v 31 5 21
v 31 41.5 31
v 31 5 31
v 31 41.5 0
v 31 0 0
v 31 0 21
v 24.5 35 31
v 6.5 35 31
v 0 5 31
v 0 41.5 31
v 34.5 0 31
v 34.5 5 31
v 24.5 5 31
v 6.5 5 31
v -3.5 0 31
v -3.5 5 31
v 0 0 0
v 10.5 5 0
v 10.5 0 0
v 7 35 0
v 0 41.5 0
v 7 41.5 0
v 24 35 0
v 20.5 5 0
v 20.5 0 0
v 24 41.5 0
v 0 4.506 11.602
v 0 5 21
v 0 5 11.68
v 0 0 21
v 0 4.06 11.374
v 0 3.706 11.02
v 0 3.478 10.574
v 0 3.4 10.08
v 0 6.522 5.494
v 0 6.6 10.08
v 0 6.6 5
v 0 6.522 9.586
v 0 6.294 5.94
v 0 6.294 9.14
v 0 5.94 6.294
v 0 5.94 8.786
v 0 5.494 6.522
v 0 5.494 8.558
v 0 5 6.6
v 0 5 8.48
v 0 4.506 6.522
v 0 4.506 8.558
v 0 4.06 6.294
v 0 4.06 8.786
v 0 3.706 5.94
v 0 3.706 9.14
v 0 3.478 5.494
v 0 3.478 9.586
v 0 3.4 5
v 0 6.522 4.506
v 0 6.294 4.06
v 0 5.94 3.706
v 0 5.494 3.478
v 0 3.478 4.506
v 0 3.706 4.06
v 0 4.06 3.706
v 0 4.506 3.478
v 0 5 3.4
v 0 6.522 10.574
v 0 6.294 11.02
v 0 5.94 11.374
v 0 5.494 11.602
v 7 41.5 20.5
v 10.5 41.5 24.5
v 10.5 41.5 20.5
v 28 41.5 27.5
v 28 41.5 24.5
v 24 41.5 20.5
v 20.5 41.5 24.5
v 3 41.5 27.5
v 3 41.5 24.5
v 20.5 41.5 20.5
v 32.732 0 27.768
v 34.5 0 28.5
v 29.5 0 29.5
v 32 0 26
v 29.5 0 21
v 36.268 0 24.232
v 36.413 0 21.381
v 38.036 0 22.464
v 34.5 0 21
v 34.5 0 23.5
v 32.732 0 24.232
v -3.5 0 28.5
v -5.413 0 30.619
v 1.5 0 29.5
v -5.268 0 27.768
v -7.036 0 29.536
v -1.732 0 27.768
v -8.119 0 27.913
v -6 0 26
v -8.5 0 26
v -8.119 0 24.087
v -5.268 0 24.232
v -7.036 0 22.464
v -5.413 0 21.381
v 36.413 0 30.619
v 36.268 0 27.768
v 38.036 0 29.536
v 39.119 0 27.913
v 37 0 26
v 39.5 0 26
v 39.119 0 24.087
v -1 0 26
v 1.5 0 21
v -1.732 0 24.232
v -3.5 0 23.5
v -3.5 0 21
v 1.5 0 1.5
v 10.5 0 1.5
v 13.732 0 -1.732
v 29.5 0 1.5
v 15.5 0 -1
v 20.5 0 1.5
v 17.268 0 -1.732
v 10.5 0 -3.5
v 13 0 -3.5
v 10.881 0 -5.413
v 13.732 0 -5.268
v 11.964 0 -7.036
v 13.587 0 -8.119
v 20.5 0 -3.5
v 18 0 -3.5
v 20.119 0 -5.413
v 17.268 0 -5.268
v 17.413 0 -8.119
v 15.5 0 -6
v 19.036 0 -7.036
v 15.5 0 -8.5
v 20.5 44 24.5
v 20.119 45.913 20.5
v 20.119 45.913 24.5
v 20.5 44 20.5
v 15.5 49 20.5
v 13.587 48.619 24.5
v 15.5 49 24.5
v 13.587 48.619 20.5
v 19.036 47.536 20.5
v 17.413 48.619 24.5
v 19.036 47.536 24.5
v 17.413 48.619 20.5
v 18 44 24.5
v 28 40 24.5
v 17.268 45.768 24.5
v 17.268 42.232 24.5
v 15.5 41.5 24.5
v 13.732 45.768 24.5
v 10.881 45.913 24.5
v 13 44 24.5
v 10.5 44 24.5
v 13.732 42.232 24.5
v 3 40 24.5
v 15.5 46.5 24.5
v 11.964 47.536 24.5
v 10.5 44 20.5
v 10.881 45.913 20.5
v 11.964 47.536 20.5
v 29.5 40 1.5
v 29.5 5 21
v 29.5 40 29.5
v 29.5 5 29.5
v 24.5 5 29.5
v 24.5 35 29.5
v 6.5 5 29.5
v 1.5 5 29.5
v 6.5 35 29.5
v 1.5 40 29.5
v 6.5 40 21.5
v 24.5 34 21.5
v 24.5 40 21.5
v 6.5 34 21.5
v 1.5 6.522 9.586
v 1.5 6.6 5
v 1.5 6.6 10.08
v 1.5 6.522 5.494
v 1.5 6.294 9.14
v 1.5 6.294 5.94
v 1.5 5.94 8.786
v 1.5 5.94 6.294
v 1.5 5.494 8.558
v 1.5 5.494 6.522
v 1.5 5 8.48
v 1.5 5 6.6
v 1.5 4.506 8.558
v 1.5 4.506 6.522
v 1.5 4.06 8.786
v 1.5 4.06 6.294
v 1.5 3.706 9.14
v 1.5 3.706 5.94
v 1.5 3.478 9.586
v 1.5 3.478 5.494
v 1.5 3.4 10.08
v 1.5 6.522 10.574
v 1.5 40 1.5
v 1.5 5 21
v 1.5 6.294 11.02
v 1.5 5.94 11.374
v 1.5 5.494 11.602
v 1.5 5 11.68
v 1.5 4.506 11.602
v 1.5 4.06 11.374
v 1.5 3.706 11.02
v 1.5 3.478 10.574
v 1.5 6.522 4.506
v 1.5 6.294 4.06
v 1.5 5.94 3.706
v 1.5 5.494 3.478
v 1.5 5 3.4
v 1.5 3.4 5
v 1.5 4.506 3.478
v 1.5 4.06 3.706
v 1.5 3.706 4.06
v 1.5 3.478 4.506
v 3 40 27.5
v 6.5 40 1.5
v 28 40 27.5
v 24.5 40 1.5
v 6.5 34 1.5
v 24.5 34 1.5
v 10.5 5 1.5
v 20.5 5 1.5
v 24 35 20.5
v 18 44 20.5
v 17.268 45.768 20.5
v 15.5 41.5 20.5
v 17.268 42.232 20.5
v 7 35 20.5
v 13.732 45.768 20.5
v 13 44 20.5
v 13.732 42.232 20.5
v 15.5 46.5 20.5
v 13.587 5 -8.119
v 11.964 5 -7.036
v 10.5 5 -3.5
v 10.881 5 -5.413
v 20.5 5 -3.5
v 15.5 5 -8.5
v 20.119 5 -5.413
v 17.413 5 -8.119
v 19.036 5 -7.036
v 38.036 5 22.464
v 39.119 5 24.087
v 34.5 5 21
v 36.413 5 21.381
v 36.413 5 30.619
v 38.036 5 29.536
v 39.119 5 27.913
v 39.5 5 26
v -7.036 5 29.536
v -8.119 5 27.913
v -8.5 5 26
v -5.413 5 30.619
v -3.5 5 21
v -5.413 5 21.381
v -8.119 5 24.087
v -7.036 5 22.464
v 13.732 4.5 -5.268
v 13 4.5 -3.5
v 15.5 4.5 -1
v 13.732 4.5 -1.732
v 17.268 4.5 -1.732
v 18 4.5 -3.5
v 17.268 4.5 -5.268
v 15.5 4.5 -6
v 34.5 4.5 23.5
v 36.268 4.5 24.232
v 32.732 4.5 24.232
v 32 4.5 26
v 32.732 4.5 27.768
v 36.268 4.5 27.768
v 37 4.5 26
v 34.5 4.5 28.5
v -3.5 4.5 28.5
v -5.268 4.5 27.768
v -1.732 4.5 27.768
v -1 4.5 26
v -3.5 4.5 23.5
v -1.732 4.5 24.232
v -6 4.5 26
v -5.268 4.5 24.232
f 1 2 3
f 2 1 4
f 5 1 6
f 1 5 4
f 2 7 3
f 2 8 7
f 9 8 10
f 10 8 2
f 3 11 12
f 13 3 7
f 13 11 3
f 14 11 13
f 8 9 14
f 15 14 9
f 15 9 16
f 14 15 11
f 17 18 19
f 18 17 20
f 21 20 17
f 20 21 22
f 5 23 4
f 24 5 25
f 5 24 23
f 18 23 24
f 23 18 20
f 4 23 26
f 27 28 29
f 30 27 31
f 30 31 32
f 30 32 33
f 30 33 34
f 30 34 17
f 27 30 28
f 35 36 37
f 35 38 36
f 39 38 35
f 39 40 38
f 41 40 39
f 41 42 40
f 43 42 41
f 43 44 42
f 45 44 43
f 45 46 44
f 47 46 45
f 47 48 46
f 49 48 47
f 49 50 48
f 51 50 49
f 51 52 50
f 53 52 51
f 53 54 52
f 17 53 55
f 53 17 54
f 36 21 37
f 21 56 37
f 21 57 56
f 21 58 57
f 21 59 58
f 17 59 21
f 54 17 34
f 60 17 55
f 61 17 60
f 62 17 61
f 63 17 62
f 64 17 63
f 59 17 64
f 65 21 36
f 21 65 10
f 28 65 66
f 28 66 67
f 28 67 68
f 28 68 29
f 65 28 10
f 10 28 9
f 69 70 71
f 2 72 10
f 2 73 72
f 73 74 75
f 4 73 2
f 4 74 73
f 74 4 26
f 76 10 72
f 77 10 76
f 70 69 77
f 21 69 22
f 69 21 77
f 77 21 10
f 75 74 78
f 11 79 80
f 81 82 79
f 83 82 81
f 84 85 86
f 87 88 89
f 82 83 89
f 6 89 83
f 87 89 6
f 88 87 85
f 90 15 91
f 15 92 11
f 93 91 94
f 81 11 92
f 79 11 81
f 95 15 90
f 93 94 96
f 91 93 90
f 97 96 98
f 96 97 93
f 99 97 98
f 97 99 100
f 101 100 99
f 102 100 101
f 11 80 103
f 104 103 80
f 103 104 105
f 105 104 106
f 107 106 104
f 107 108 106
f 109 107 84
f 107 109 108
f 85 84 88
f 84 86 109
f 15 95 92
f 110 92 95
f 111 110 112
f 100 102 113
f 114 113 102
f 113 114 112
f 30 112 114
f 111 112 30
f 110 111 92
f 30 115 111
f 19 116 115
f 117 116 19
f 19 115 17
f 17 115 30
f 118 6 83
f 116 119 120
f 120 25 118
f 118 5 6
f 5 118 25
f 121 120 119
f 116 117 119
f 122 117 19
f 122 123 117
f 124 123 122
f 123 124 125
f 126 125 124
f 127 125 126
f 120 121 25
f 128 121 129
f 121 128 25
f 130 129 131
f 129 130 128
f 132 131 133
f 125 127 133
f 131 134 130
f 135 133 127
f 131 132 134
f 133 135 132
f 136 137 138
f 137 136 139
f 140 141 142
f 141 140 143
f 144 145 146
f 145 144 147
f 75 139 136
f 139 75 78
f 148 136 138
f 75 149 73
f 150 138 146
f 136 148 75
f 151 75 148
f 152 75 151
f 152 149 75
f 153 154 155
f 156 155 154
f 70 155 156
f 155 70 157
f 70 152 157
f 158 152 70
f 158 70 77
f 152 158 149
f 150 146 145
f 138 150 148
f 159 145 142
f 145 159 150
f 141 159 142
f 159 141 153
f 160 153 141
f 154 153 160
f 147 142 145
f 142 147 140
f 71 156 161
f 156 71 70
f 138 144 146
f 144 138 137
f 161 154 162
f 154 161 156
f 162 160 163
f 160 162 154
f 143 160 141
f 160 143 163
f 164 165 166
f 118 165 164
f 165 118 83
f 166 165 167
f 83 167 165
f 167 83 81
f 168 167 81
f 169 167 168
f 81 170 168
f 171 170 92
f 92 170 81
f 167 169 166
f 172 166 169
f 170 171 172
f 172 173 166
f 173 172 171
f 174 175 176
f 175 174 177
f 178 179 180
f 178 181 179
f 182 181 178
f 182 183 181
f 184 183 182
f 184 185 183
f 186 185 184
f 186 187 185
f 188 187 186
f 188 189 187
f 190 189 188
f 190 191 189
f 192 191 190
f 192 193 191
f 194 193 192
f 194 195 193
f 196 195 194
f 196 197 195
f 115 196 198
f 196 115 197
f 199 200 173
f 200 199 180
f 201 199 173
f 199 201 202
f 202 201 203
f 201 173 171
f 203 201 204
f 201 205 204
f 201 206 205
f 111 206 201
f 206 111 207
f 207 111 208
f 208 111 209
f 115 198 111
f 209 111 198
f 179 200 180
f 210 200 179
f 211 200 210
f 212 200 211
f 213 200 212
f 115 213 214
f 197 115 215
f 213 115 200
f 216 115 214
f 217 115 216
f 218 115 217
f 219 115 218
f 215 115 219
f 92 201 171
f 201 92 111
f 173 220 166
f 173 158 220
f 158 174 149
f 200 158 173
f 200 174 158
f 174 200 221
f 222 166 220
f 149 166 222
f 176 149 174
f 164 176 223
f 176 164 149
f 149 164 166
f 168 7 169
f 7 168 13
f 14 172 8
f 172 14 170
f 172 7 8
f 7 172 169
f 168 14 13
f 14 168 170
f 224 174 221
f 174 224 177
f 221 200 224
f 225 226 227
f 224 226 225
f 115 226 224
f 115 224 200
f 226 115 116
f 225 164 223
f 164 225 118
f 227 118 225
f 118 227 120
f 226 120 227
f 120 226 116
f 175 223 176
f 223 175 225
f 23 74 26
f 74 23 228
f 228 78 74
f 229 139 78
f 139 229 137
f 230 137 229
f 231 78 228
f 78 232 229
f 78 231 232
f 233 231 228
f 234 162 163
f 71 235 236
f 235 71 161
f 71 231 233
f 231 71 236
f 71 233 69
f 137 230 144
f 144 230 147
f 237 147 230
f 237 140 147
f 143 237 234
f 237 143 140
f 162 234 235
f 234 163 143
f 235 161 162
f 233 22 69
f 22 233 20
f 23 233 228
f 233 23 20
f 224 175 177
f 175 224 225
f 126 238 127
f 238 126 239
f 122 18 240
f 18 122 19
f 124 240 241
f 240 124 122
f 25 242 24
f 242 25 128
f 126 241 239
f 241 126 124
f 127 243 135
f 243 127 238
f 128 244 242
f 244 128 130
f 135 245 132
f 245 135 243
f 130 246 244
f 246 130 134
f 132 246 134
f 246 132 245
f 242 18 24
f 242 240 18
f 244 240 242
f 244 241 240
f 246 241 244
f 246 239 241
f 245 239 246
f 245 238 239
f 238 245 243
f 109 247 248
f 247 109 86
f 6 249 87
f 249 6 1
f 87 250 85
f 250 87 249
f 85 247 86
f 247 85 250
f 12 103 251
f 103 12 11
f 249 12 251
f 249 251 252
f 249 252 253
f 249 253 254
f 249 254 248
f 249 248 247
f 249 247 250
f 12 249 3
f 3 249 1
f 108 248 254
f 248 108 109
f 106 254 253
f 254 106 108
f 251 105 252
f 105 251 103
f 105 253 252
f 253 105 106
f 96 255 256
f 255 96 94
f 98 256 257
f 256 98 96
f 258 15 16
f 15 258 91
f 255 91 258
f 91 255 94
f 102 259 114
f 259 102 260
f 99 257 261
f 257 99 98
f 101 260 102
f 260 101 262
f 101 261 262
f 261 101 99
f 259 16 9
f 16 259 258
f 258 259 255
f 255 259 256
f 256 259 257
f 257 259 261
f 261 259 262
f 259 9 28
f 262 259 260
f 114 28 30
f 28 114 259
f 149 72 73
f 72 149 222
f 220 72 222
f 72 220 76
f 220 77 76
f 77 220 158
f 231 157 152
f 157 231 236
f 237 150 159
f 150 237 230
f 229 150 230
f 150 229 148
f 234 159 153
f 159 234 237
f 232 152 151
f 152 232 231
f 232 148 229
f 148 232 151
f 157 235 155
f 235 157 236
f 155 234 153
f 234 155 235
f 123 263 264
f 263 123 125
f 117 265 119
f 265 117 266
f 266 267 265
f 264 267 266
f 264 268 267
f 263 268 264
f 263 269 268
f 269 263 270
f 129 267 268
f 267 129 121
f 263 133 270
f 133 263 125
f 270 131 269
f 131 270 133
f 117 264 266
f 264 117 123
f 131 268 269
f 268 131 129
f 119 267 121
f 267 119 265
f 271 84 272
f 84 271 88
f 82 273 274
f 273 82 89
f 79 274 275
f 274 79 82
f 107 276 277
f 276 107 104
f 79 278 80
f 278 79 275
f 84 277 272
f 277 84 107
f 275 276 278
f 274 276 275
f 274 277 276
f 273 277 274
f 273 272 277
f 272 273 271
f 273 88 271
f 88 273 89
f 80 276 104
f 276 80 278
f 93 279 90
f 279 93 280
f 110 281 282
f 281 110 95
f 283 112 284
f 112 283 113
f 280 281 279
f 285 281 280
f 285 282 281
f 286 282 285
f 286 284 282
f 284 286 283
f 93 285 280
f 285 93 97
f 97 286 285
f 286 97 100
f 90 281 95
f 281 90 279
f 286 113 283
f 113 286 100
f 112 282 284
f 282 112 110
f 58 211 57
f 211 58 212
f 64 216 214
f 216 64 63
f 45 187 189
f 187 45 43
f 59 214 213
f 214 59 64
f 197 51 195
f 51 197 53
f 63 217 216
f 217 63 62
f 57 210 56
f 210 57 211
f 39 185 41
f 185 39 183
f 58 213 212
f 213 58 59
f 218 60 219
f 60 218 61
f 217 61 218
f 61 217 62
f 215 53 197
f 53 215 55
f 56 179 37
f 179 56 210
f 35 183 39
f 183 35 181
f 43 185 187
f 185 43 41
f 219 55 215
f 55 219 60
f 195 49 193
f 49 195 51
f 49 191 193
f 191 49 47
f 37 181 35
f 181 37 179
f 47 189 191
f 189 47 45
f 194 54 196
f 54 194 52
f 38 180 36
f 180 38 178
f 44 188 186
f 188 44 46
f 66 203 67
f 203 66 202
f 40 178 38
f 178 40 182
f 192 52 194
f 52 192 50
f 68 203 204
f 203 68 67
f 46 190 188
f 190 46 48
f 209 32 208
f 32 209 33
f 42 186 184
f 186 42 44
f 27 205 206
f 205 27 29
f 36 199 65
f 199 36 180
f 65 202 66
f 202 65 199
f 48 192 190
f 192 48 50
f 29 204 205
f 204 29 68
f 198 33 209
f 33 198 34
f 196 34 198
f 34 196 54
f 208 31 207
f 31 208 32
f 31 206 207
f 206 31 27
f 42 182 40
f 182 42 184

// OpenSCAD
difference() {
    union() {
        difference() {
            union() {
                cube([28+3,40+1.5,28+3]);
                hull() {
                    translate([(28+3)/2,40+1.5+2.5,28+3-5-1.5-5-1]) cylinder(6,5,5);
                    translate([(28+3)/2-5,40+1.5+2.5-4,28+3-5-1.5-5-1]) cube([10,3,6]);
                }
            }
            translate([(28+3-28)/2,-1.5,28+3-8-1.5]) cube([28,40+1.5,8]);
            translate([(28+3-18)/2,5,28]) cube([18,30,20]);
            translate([1.5,-1.5,1.5])cube([5,40+1.5,28]);
            translate([28+3-5-1.5,-1.5,1.5])cube([5,40+1.5,28]);
            translate([(28+3-17)/2,20+15,-1.5])cube([17,50+1.5,25-3]);
            
            translate([1.5,-0.5-20-1.5+15,1.5]) cube([28,40+1,28]);
        }
        

        
        translate([(28+3)/2,0,1.5]) rotate([-90,0,0]) hull() {
            translate([0,5,0]) cylinder(5,5,5);
            translate([-5,0,0]) cube([10,1,5]);
        }
        translate([28+1.5,0,28+3-5]) rotate([-90,-90,0]) hull() {
            translate([0,5,0]) cylinder(5,5,5);
            translate([-5,0,0]) cube([10,1,5]);
        }
        translate([1.5,0,28+3-5]) rotate([-90,90,0]) hull() {
            translate([0,5,0]) cylinder(5,5,5);
            translate([-5,0,0]) cube([10,1,5]);
        }
    }

    translate([(28+3-25)/2,13,28+3-5-1.5]) cube([25,45.5,3]);
    translate([(28+3)/2,40+1.5+2.5,28.3-5-1.5-5]) cylinder(8,5/2,5/2);
    translate([(28+3)/2,0-0.5,1.5]) rotate([-90,0,0]) hull() {
        translate([0,5,0]) cylinder(5,5/2,5/2);
    }
    translate([28+1.5,0-0.5,28+3-5]) rotate([-90,-90,0]) hull() {
        translate([0,5,0]) cylinder(5,5/2,5/2);
    }
    translate([1.5,0-0.5,28+3-5]) rotate([-90,90,0]) hull() {
        translate([0,5,0]) cylinder(5,5/2,5/2);
    }
    
    translate([-2,5,5]) rotate([0,90,0]) cylinder(5, 1.6, 1.6, $fn=20);
    translate([-2,5,5+(2.54*2)]) rotate([0,90,0]) cylinder(5, 1.6, 1.6, $fn=20);
}
